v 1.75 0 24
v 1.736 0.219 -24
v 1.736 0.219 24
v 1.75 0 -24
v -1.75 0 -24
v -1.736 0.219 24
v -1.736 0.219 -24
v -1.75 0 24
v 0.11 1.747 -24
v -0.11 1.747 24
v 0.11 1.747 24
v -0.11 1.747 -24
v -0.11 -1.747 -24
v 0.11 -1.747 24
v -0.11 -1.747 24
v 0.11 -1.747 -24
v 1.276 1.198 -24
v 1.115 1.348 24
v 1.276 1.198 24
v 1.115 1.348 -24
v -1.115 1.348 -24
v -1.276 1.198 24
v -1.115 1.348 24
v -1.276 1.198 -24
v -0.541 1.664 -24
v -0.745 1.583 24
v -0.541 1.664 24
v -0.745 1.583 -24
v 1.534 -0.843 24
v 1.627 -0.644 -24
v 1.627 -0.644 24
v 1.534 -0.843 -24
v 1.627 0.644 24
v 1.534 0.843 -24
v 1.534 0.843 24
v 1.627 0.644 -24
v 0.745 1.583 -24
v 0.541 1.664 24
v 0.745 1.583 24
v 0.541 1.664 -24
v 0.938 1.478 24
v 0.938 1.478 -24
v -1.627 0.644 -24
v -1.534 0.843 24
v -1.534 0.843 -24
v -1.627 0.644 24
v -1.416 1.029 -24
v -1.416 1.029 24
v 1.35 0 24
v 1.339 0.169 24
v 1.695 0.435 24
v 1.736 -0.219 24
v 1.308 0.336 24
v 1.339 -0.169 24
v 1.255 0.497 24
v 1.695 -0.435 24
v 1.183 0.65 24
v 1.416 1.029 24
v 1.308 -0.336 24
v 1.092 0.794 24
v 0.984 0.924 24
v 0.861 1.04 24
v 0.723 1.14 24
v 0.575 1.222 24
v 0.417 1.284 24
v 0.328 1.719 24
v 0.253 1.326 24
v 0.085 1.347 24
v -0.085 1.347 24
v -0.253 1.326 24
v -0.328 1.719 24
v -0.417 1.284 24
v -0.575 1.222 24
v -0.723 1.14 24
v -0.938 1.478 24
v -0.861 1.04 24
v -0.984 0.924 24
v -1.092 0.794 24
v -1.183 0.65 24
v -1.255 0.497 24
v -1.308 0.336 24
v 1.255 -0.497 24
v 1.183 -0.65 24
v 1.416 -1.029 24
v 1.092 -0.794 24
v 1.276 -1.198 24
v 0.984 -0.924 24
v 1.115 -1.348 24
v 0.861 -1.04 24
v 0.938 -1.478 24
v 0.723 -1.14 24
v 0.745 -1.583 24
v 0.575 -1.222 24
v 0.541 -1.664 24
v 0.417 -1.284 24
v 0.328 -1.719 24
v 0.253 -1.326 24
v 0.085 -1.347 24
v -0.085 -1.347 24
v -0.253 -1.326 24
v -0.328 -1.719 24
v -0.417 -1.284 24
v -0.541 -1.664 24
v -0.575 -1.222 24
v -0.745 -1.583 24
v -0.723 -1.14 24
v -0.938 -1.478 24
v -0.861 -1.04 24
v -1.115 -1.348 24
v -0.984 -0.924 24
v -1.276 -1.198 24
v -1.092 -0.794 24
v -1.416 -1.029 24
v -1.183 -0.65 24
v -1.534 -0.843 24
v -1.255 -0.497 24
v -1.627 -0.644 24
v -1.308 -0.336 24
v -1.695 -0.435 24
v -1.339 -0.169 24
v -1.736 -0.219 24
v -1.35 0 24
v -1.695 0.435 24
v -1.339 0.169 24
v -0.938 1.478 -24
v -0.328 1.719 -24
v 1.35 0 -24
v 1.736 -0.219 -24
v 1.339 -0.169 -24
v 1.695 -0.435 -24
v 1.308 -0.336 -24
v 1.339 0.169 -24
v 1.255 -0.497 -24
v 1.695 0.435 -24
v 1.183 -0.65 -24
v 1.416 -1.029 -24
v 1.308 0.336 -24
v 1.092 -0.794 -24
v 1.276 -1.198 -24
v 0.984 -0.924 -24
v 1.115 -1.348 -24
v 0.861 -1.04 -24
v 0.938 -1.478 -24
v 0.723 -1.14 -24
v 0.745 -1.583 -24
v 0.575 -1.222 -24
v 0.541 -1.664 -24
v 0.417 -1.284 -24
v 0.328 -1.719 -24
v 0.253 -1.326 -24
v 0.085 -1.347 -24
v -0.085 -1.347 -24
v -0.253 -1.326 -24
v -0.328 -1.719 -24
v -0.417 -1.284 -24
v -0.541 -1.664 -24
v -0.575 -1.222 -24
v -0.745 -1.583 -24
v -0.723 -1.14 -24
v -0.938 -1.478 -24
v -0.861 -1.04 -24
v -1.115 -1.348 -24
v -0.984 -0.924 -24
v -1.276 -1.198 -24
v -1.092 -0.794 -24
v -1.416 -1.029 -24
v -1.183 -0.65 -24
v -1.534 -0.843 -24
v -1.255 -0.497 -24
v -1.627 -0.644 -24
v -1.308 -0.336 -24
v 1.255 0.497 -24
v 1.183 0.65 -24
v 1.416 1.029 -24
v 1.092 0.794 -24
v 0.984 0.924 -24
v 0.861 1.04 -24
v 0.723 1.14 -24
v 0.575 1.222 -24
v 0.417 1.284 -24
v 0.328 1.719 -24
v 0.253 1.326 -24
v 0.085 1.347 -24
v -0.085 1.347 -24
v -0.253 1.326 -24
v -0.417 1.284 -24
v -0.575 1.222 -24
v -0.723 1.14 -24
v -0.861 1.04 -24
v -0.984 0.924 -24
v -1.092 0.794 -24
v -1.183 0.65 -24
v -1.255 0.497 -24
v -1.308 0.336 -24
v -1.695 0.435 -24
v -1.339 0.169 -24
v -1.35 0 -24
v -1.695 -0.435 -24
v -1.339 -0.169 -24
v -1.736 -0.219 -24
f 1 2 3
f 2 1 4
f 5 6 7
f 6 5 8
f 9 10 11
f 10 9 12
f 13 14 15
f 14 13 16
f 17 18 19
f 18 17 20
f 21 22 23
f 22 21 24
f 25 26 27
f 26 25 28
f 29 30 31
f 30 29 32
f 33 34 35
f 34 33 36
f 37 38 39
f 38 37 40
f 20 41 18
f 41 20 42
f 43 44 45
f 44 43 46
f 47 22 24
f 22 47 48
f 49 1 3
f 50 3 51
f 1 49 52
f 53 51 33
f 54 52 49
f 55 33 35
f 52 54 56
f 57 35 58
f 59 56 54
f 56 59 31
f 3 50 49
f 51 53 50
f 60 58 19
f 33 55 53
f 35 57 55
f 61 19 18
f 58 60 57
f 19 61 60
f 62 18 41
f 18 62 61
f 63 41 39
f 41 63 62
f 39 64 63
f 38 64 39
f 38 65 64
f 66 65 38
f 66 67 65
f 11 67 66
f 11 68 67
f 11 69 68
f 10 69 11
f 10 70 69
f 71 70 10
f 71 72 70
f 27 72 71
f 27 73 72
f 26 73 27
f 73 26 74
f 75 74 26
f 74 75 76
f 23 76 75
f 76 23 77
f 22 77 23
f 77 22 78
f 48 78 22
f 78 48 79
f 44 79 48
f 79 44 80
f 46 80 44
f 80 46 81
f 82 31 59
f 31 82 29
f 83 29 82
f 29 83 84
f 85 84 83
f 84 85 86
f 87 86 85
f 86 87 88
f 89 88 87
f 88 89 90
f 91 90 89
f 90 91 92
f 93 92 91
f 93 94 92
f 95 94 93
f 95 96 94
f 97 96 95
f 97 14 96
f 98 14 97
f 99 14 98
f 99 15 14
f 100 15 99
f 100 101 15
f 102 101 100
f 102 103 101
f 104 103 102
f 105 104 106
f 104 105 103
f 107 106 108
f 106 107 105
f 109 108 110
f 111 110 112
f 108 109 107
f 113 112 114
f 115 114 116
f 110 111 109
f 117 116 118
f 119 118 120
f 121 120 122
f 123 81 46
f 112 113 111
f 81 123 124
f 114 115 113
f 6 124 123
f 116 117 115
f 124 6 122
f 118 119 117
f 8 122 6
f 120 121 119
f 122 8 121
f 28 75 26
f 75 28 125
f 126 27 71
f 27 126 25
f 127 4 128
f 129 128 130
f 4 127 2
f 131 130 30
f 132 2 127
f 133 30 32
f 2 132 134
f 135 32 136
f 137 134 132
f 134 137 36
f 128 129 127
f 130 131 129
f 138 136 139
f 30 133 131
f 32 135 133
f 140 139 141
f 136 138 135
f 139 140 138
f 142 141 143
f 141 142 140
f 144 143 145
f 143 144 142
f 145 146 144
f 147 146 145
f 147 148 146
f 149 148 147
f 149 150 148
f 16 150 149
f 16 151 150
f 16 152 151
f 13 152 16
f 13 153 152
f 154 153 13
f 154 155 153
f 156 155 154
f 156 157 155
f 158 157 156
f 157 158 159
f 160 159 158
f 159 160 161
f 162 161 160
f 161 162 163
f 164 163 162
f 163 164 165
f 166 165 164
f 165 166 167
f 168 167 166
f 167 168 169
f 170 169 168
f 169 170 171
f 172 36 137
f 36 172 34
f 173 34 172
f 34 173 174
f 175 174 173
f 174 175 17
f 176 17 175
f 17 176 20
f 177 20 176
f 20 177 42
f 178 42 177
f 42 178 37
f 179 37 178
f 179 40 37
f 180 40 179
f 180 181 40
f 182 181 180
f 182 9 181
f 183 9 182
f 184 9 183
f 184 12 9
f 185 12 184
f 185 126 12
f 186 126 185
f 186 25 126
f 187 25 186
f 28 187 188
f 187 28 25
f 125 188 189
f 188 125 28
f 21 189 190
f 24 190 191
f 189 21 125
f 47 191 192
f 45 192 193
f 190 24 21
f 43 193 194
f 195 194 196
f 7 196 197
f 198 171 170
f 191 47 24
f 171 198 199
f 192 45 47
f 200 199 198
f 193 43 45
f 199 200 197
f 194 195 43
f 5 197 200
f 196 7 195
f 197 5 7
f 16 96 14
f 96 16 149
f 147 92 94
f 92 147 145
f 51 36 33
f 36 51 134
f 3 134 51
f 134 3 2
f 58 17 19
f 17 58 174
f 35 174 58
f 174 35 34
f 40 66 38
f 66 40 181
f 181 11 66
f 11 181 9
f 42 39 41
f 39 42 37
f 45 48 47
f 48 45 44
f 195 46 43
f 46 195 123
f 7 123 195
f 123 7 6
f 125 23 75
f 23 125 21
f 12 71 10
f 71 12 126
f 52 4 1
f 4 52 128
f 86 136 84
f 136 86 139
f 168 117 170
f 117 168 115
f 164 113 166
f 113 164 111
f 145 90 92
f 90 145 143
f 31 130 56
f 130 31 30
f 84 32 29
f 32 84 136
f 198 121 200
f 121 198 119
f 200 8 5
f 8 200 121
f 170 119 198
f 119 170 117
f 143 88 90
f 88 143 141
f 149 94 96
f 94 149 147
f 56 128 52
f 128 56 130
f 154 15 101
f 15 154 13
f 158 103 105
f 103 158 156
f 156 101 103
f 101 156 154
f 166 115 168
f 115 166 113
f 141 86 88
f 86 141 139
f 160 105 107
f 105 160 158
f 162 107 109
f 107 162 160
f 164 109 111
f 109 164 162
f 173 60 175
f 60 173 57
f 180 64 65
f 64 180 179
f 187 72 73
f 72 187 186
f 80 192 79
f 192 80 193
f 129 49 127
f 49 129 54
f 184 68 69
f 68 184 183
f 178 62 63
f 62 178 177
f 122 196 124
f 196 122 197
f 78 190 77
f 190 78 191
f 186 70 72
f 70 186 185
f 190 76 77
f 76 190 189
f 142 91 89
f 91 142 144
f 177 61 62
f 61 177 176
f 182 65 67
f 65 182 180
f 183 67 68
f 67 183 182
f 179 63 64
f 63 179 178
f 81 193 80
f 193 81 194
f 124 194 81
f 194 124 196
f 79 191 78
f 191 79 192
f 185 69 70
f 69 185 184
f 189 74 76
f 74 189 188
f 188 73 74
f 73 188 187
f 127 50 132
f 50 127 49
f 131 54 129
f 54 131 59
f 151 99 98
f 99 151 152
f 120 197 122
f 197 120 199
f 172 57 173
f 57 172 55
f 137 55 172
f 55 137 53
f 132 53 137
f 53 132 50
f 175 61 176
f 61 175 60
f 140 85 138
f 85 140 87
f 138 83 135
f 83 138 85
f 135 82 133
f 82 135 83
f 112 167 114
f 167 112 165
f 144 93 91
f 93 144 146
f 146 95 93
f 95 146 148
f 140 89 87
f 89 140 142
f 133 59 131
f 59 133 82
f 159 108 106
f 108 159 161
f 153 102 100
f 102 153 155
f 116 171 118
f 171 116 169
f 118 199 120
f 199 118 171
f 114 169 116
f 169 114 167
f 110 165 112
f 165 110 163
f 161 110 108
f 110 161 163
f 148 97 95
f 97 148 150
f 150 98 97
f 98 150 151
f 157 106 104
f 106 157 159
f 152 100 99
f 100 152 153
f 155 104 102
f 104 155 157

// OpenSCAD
$fn = 50;


difference() {
	union() {
		translate(v = [0, 0, -24.0000000000]) {
			cylinder(h = 48, r = 1.7500000000);
		}
	}
	union() {
		translate(v = [0, 0, -100.0000000000]) {
			cylinder(h = 200, r = 1.3500000000);
		}
	}
}
